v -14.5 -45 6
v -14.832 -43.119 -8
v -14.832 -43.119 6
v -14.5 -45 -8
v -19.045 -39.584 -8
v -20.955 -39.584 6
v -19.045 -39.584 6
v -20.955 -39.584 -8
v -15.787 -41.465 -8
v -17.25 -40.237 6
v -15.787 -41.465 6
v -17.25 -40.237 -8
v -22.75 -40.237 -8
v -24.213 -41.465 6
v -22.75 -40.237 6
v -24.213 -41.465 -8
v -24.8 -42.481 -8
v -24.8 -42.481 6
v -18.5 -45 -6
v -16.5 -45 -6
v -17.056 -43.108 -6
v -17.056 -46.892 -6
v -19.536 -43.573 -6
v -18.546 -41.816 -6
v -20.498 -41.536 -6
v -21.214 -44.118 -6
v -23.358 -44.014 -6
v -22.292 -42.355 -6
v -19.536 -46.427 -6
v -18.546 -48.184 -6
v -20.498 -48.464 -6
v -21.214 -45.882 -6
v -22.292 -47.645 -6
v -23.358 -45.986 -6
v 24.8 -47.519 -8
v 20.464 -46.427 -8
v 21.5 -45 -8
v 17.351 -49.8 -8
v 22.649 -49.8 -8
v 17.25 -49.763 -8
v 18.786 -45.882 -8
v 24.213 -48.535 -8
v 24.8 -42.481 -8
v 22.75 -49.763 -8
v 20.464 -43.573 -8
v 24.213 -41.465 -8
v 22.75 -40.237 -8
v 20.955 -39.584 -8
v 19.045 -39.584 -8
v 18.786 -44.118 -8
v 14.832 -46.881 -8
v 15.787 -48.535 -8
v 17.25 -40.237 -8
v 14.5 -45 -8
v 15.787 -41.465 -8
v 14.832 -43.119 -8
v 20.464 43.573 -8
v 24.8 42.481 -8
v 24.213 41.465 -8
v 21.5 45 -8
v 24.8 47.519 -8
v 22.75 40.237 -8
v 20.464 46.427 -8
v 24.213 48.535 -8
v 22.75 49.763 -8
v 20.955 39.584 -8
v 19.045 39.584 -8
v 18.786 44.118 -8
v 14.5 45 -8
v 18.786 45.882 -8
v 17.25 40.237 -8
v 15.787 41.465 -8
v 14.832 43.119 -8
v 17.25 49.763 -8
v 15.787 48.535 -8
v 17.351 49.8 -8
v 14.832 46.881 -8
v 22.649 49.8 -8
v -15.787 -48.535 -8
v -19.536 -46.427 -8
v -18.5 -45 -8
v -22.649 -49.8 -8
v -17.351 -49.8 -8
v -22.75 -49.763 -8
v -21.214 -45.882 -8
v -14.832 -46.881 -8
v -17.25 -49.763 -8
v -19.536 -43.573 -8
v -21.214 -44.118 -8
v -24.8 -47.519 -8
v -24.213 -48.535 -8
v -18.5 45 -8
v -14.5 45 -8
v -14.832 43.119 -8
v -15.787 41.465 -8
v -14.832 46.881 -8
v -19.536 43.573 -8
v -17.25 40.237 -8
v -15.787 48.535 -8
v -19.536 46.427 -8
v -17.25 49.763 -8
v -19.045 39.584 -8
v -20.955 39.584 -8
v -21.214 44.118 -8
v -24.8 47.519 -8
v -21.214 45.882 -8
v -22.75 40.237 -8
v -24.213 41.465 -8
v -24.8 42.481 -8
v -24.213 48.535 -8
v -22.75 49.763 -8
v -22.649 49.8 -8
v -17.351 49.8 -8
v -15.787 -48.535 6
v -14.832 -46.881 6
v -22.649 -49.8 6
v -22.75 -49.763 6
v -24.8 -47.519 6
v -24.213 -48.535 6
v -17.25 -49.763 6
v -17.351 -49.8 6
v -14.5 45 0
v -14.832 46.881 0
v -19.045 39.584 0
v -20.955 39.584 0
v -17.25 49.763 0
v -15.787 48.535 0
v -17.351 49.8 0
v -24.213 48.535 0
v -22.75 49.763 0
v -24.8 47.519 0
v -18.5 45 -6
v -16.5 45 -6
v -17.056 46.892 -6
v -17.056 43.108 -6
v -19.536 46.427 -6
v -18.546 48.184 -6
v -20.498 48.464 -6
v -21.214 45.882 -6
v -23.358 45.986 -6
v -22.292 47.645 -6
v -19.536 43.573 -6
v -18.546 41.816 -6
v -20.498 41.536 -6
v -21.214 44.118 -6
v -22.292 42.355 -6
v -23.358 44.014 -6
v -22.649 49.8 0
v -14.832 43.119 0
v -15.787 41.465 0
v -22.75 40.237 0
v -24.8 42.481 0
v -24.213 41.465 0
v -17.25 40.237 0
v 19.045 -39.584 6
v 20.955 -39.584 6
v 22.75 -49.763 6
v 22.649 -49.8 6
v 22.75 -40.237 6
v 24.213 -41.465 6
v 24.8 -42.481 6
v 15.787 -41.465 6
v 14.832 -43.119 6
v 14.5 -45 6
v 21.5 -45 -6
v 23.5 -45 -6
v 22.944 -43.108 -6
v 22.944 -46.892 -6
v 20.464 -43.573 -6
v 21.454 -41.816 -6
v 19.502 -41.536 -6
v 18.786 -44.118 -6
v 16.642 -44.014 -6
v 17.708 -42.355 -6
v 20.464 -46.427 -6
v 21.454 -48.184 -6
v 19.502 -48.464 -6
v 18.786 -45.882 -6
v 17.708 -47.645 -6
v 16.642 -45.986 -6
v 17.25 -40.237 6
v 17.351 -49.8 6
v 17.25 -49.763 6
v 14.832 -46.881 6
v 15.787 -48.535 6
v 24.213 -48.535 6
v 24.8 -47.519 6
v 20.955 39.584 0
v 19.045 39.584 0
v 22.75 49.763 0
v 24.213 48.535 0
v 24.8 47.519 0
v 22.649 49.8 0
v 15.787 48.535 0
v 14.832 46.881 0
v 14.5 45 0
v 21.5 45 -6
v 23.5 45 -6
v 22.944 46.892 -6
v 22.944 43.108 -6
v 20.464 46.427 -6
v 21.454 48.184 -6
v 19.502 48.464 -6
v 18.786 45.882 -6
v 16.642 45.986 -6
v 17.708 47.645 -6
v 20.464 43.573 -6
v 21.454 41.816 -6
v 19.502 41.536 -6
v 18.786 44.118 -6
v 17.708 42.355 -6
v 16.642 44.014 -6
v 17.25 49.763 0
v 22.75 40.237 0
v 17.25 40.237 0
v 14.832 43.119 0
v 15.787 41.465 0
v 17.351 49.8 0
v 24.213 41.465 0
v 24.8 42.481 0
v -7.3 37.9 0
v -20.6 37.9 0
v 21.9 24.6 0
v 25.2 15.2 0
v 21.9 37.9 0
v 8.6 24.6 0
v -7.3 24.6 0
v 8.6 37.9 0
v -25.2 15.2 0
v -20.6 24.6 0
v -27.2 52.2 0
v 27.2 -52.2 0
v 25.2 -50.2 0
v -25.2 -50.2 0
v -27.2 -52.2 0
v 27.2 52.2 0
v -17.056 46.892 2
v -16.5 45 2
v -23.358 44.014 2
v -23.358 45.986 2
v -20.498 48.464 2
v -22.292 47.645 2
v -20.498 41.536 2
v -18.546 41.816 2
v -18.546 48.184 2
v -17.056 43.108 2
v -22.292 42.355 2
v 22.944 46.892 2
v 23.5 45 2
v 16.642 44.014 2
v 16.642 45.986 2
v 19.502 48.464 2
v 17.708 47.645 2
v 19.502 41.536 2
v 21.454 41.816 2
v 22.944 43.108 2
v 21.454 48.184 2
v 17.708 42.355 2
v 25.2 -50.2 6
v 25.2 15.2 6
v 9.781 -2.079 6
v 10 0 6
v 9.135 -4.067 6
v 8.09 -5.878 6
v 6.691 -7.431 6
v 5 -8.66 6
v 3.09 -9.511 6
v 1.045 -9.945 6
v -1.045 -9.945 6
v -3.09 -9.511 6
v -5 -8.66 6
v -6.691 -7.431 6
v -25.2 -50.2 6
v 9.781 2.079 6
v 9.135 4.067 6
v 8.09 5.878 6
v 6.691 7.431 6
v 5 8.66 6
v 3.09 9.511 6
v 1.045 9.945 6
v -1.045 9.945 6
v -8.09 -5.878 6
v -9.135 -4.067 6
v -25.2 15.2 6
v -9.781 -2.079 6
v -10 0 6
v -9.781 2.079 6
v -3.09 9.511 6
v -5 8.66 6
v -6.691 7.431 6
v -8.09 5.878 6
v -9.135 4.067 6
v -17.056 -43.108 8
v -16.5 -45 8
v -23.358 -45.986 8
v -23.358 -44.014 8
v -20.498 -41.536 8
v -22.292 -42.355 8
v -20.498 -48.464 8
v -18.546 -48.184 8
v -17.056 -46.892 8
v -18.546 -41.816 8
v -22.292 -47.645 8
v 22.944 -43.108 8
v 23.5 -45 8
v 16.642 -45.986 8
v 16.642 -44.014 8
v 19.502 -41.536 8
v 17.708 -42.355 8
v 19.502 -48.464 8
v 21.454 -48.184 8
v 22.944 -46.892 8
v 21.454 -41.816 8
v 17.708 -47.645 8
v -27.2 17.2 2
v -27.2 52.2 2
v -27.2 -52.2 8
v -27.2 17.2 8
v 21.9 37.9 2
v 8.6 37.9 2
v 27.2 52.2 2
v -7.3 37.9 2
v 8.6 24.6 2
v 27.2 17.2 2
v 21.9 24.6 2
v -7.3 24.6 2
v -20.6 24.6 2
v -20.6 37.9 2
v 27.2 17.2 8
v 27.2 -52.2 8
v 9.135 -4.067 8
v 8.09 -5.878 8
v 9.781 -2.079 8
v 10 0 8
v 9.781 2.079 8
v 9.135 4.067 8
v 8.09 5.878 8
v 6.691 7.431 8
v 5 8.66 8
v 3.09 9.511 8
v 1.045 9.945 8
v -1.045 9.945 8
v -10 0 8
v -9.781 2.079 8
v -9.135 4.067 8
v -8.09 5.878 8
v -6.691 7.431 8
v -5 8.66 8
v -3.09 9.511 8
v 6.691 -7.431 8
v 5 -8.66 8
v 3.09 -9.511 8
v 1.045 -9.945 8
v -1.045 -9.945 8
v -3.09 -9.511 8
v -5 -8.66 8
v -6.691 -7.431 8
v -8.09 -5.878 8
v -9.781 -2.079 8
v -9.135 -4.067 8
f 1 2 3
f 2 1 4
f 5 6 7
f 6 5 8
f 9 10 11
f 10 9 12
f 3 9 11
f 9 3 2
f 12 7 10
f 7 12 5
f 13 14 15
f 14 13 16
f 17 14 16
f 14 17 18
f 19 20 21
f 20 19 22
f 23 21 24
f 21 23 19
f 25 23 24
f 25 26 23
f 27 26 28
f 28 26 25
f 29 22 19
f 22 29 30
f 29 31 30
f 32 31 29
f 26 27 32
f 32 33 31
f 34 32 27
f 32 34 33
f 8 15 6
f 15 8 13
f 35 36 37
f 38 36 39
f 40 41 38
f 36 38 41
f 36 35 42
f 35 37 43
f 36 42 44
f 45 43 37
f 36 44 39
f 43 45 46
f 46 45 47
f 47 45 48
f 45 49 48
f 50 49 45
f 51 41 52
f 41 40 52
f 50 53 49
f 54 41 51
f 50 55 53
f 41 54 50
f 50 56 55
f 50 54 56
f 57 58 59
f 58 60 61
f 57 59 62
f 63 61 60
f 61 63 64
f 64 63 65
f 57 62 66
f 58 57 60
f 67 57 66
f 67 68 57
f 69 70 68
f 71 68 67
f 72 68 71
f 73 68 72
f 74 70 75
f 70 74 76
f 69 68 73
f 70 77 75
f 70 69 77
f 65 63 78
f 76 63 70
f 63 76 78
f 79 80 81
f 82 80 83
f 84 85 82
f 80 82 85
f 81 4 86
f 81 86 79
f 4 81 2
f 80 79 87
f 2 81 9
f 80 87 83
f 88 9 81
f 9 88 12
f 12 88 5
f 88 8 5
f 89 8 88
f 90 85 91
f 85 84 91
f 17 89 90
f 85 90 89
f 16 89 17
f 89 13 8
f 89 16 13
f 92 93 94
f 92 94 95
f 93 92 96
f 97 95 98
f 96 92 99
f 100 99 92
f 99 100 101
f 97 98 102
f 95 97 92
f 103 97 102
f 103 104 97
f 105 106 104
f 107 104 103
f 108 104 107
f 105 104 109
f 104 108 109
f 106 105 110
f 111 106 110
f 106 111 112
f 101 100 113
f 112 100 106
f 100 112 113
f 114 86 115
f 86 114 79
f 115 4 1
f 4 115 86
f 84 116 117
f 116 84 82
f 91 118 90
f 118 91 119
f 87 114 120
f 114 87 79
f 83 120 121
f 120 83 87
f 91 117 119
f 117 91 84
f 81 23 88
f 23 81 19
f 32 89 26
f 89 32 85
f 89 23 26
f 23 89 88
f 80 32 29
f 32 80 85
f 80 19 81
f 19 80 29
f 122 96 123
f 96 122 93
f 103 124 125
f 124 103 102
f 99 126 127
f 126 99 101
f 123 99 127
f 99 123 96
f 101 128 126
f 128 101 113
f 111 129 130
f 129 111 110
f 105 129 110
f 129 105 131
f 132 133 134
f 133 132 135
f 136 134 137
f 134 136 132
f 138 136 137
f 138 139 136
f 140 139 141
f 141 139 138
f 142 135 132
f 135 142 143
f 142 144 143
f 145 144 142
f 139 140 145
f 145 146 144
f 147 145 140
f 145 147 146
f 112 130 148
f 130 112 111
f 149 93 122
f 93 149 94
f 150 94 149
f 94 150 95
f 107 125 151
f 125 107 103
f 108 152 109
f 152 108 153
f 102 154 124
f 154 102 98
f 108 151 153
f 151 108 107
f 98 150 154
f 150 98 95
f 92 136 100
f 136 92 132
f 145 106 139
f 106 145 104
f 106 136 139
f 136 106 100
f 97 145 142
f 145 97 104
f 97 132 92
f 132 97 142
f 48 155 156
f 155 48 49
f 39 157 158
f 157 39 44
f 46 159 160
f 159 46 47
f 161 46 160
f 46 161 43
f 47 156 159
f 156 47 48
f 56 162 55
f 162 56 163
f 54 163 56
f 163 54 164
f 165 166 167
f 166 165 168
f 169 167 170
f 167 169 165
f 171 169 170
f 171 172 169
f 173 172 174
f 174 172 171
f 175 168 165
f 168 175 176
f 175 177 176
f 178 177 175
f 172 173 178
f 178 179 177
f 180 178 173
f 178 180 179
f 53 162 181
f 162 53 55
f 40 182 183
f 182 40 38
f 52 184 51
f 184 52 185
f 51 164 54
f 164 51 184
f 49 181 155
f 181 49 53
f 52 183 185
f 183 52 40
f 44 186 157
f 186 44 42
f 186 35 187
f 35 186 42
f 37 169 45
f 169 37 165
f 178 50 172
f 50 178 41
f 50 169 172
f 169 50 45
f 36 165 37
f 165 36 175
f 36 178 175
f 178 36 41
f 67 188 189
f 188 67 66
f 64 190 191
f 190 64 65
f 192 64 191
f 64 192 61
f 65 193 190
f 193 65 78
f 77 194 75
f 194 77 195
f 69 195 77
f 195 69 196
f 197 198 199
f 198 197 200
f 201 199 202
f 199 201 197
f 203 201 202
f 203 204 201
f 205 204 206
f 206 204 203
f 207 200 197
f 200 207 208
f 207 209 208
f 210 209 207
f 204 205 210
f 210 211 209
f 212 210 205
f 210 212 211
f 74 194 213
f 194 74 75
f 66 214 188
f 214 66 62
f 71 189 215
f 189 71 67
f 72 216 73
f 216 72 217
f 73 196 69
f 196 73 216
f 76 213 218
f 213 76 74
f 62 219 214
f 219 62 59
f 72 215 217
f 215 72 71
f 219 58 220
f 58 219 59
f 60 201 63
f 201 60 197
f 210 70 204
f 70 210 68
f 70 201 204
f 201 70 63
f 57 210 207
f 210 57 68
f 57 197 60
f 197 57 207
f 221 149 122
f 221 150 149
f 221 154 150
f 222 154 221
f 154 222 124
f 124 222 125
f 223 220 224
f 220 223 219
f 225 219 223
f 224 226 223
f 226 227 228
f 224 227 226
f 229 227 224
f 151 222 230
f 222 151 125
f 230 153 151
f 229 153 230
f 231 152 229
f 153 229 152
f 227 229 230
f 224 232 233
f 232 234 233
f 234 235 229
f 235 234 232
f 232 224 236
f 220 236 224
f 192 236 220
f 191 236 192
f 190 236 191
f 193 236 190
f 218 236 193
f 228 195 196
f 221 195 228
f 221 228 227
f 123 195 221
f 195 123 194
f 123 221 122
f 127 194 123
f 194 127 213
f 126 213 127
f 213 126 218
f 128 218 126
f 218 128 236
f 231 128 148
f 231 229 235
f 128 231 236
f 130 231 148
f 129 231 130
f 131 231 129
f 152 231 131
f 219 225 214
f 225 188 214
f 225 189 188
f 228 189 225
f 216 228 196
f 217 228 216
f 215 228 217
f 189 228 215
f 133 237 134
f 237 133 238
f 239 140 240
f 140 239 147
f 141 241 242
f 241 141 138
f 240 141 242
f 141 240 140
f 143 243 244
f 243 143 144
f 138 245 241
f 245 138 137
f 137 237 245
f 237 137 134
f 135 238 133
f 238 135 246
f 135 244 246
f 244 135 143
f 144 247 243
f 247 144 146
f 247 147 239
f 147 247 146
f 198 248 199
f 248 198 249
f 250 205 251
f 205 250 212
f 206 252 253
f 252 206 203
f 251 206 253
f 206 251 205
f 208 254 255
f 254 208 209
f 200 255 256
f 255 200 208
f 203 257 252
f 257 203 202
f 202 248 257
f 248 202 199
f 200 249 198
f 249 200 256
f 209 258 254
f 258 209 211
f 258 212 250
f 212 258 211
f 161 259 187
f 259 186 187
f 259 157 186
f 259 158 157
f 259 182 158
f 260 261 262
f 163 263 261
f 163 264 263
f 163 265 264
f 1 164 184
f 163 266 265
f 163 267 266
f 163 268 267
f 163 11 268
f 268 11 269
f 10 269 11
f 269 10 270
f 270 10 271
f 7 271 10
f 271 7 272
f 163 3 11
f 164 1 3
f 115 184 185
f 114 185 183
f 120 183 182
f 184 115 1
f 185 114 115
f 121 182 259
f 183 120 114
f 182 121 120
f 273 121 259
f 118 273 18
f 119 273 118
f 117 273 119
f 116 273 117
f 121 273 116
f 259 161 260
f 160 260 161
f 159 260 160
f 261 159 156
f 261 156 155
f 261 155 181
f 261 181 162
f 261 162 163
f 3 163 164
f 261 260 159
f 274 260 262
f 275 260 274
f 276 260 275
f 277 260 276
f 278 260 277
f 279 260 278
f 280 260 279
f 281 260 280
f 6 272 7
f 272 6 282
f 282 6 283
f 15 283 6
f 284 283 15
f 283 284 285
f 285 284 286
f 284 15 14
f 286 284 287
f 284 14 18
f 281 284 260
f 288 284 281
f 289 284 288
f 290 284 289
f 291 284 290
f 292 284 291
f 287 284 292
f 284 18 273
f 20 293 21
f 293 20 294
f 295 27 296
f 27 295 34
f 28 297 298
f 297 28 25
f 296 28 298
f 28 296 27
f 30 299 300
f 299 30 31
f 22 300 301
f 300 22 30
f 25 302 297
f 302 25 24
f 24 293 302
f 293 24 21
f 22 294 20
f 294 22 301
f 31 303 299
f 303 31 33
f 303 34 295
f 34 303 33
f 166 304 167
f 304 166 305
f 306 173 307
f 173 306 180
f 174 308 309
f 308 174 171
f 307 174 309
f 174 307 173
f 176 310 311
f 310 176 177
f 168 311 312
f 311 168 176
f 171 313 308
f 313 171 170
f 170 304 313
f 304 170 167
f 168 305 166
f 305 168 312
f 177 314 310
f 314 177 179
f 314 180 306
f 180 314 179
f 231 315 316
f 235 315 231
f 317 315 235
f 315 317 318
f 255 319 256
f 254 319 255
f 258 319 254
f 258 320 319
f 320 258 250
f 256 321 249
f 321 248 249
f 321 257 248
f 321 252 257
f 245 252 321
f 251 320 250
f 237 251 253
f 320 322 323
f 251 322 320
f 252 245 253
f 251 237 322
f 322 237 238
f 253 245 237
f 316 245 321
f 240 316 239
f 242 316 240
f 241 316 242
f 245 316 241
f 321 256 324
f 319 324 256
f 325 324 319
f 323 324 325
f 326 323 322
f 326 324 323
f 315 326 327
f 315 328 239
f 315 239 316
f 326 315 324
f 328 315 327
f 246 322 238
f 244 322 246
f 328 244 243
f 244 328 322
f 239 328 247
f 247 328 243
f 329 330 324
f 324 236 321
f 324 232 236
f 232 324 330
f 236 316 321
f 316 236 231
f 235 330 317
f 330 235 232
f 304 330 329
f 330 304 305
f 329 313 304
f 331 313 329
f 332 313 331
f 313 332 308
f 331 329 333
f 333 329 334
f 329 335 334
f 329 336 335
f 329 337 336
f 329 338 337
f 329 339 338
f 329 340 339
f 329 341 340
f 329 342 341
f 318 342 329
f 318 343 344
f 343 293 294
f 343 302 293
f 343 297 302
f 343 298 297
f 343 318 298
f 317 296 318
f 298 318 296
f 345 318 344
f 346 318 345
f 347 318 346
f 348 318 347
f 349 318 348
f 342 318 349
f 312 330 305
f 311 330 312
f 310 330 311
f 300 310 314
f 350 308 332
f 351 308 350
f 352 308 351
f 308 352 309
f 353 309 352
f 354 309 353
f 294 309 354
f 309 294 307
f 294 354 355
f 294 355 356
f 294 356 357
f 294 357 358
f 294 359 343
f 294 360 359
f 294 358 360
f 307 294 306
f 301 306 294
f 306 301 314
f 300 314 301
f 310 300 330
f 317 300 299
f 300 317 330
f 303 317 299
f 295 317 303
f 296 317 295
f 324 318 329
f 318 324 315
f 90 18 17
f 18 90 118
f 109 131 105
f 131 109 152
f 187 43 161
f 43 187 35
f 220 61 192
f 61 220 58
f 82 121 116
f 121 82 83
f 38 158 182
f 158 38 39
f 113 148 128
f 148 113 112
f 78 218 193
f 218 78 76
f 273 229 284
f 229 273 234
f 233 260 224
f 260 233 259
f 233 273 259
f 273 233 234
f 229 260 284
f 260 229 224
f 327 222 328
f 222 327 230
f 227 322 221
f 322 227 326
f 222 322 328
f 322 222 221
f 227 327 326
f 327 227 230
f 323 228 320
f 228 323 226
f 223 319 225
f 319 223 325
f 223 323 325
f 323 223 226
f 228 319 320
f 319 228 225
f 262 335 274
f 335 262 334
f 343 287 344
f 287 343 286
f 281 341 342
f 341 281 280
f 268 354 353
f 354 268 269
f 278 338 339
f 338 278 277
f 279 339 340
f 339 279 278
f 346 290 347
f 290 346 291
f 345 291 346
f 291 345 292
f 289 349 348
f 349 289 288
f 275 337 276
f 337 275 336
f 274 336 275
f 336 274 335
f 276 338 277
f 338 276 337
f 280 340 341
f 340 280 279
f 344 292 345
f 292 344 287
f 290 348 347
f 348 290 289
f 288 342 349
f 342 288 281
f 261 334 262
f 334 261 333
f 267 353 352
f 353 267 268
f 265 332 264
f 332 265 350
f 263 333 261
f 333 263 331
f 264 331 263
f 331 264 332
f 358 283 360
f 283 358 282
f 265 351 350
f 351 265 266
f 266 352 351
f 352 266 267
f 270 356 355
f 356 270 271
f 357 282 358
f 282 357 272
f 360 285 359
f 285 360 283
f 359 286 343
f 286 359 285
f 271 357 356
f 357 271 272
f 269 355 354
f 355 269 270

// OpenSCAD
DEPTH=8;
SIZEX=25;
SIZEY=50;
HOLE=5;
HEIGHT=4;

MARGIN=0.2;
THICK=2.0;

DIFF=THICK/2;

// Top shell

difference() {
    
union() {

translate([-SIZEX-MARGIN-THICK,-SIZEY-MARGIN-THICK,0]) {    
cube([SIZEX*2+MARGIN*2+THICK*2,SIZEY*2+MARGIN*2+THICK*2,THICK]);
}


translate([-SIZEX-MARGIN-THICK,-SIZEY-MARGIN-THICK,THICK]) {    
cube([SIZEX*2+MARGIN*2+THICK*2,SIZEY*2+MARGIN*2+THICK*2-35,THICK+HEIGHT]);
}


}

{
    translate([-SIZEX-MARGIN,-SIZEY-MARGIN,0]) {    
cube([SIZEX*2+MARGIN*2,SIZEY*2+MARGIN*2-35,HEIGHT+THICK]);
}
    }

 // Button Hole
    
    translate([-25+4+MARGIN*2,25-MARGIN*2,0]) {
        cube([12.5+MARGIN*4,12.5+MARGIN*4,10]);
    }

    translate([25-4-12-MARGIN*2,25-MARGIN*2,0]) {
        cube([12.5+MARGIN*4,12.5+MARGIN*4,10]);
    }

    cylinder(20,10,10);

// Mounting Hole

translate([-SIZEX+HOLE,-SIZEY+HOLE,HEIGHT+THICK]) {
cylinder(THICK,3.5,3.5);    
}

translate([-SIZEX+HOLE,SIZEY-HOLE,0]) {
cylinder(THICK,3.5,3.5);    
}

translate([SIZEX-HOLE,-SIZEY+HOLE,HEIGHT+THICK]) {
cylinder(THICK,3.5,3.5);    
}

translate([SIZEX-HOLE,SIZEY-HOLE,0]) {
cylinder(THICK,3.5,3.5);    
}



}


//

// Mounting Hole

intersection() {

translate([-SIZEX+MARGIN,-SIZEY+MARGIN,-DEPTH]) {
    cube([SIZEX*2-MARGIN*2,SIZEY*2-MARGIN*2,DEPTH+HEIGHT+2.0]);
}

union() {

difference() {
translate([-SIZEX+HOLE,-SIZEY+HOLE,-DEPTH+2]) {
cylinder(DEPTH-2+HEIGHT+THICK,5.5,5.5);    
}
translate([-SIZEX+HOLE,-SIZEY+HOLE,-DEPTH+2]) {
cylinder(DEPTH-2+HEIGHT+THICK,3.5,3.5);    
}
}

difference() {
translate([-SIZEX+HOLE,-SIZEY+HOLE,-DEPTH]) {
cylinder(2,5.5,5.5);    
}

translate([-SIZEX+HOLE,-SIZEY+HOLE,-DEPTH]) {
cylinder(2,1.5,1.5);    
}
}


difference() {
translate([-SIZEX+HOLE,SIZEY-HOLE,-DEPTH+2]) {
cylinder(DEPTH-2,5.5,5.5);    
}
translate([-SIZEX+HOLE,SIZEY-HOLE,-DEPTH+2]) {
cylinder(DEPTH-2,3.5,3.5);    
}
}

difference() {
translate([-SIZEX+HOLE,SIZEY-HOLE,-DEPTH]) {
cylinder(2,5.5,5.5);    
}

translate([-SIZEX+HOLE,SIZEY-HOLE,-DEPTH]) {
cylinder(2,1.5,1.5);    
}
}


difference() {
translate([SIZEX-HOLE,-SIZEY+HOLE,-DEPTH+2]) {
cylinder(DEPTH-2+HEIGHT+THICK,5.5,5.5);    
}
translate([SIZEX-HOLE,-SIZEY+HOLE,-DEPTH+2]) {
cylinder(DEPTH-2+HEIGHT+THICK,3.5,3.5);    
}
}

difference() {
translate([SIZEX-HOLE,-SIZEY+HOLE,-DEPTH]) {
cylinder(2,5.5,5.5);    
}

translate([SIZEX-HOLE,-SIZEY+HOLE,-DEPTH]) {
cylinder(2,1.5,1.5);    
}
}


difference() {
translate([SIZEX-HOLE,SIZEY-HOLE,-DEPTH+2]) {
cylinder(DEPTH-2,5.5,5.5);    
}
translate([SIZEX-HOLE,SIZEY-HOLE,-DEPTH+2]) {
cylinder(DEPTH-2,3.5,3.5);    
}
}

difference() {
translate([SIZEX-HOLE,SIZEY-HOLE,-DEPTH]) {
cylinder(2,5.5,5.5);    
}

translate([SIZEX-HOLE,SIZEY-HOLE,-DEPTH]) {
cylinder(2,1.5,1.5);    
}
}

}
}
